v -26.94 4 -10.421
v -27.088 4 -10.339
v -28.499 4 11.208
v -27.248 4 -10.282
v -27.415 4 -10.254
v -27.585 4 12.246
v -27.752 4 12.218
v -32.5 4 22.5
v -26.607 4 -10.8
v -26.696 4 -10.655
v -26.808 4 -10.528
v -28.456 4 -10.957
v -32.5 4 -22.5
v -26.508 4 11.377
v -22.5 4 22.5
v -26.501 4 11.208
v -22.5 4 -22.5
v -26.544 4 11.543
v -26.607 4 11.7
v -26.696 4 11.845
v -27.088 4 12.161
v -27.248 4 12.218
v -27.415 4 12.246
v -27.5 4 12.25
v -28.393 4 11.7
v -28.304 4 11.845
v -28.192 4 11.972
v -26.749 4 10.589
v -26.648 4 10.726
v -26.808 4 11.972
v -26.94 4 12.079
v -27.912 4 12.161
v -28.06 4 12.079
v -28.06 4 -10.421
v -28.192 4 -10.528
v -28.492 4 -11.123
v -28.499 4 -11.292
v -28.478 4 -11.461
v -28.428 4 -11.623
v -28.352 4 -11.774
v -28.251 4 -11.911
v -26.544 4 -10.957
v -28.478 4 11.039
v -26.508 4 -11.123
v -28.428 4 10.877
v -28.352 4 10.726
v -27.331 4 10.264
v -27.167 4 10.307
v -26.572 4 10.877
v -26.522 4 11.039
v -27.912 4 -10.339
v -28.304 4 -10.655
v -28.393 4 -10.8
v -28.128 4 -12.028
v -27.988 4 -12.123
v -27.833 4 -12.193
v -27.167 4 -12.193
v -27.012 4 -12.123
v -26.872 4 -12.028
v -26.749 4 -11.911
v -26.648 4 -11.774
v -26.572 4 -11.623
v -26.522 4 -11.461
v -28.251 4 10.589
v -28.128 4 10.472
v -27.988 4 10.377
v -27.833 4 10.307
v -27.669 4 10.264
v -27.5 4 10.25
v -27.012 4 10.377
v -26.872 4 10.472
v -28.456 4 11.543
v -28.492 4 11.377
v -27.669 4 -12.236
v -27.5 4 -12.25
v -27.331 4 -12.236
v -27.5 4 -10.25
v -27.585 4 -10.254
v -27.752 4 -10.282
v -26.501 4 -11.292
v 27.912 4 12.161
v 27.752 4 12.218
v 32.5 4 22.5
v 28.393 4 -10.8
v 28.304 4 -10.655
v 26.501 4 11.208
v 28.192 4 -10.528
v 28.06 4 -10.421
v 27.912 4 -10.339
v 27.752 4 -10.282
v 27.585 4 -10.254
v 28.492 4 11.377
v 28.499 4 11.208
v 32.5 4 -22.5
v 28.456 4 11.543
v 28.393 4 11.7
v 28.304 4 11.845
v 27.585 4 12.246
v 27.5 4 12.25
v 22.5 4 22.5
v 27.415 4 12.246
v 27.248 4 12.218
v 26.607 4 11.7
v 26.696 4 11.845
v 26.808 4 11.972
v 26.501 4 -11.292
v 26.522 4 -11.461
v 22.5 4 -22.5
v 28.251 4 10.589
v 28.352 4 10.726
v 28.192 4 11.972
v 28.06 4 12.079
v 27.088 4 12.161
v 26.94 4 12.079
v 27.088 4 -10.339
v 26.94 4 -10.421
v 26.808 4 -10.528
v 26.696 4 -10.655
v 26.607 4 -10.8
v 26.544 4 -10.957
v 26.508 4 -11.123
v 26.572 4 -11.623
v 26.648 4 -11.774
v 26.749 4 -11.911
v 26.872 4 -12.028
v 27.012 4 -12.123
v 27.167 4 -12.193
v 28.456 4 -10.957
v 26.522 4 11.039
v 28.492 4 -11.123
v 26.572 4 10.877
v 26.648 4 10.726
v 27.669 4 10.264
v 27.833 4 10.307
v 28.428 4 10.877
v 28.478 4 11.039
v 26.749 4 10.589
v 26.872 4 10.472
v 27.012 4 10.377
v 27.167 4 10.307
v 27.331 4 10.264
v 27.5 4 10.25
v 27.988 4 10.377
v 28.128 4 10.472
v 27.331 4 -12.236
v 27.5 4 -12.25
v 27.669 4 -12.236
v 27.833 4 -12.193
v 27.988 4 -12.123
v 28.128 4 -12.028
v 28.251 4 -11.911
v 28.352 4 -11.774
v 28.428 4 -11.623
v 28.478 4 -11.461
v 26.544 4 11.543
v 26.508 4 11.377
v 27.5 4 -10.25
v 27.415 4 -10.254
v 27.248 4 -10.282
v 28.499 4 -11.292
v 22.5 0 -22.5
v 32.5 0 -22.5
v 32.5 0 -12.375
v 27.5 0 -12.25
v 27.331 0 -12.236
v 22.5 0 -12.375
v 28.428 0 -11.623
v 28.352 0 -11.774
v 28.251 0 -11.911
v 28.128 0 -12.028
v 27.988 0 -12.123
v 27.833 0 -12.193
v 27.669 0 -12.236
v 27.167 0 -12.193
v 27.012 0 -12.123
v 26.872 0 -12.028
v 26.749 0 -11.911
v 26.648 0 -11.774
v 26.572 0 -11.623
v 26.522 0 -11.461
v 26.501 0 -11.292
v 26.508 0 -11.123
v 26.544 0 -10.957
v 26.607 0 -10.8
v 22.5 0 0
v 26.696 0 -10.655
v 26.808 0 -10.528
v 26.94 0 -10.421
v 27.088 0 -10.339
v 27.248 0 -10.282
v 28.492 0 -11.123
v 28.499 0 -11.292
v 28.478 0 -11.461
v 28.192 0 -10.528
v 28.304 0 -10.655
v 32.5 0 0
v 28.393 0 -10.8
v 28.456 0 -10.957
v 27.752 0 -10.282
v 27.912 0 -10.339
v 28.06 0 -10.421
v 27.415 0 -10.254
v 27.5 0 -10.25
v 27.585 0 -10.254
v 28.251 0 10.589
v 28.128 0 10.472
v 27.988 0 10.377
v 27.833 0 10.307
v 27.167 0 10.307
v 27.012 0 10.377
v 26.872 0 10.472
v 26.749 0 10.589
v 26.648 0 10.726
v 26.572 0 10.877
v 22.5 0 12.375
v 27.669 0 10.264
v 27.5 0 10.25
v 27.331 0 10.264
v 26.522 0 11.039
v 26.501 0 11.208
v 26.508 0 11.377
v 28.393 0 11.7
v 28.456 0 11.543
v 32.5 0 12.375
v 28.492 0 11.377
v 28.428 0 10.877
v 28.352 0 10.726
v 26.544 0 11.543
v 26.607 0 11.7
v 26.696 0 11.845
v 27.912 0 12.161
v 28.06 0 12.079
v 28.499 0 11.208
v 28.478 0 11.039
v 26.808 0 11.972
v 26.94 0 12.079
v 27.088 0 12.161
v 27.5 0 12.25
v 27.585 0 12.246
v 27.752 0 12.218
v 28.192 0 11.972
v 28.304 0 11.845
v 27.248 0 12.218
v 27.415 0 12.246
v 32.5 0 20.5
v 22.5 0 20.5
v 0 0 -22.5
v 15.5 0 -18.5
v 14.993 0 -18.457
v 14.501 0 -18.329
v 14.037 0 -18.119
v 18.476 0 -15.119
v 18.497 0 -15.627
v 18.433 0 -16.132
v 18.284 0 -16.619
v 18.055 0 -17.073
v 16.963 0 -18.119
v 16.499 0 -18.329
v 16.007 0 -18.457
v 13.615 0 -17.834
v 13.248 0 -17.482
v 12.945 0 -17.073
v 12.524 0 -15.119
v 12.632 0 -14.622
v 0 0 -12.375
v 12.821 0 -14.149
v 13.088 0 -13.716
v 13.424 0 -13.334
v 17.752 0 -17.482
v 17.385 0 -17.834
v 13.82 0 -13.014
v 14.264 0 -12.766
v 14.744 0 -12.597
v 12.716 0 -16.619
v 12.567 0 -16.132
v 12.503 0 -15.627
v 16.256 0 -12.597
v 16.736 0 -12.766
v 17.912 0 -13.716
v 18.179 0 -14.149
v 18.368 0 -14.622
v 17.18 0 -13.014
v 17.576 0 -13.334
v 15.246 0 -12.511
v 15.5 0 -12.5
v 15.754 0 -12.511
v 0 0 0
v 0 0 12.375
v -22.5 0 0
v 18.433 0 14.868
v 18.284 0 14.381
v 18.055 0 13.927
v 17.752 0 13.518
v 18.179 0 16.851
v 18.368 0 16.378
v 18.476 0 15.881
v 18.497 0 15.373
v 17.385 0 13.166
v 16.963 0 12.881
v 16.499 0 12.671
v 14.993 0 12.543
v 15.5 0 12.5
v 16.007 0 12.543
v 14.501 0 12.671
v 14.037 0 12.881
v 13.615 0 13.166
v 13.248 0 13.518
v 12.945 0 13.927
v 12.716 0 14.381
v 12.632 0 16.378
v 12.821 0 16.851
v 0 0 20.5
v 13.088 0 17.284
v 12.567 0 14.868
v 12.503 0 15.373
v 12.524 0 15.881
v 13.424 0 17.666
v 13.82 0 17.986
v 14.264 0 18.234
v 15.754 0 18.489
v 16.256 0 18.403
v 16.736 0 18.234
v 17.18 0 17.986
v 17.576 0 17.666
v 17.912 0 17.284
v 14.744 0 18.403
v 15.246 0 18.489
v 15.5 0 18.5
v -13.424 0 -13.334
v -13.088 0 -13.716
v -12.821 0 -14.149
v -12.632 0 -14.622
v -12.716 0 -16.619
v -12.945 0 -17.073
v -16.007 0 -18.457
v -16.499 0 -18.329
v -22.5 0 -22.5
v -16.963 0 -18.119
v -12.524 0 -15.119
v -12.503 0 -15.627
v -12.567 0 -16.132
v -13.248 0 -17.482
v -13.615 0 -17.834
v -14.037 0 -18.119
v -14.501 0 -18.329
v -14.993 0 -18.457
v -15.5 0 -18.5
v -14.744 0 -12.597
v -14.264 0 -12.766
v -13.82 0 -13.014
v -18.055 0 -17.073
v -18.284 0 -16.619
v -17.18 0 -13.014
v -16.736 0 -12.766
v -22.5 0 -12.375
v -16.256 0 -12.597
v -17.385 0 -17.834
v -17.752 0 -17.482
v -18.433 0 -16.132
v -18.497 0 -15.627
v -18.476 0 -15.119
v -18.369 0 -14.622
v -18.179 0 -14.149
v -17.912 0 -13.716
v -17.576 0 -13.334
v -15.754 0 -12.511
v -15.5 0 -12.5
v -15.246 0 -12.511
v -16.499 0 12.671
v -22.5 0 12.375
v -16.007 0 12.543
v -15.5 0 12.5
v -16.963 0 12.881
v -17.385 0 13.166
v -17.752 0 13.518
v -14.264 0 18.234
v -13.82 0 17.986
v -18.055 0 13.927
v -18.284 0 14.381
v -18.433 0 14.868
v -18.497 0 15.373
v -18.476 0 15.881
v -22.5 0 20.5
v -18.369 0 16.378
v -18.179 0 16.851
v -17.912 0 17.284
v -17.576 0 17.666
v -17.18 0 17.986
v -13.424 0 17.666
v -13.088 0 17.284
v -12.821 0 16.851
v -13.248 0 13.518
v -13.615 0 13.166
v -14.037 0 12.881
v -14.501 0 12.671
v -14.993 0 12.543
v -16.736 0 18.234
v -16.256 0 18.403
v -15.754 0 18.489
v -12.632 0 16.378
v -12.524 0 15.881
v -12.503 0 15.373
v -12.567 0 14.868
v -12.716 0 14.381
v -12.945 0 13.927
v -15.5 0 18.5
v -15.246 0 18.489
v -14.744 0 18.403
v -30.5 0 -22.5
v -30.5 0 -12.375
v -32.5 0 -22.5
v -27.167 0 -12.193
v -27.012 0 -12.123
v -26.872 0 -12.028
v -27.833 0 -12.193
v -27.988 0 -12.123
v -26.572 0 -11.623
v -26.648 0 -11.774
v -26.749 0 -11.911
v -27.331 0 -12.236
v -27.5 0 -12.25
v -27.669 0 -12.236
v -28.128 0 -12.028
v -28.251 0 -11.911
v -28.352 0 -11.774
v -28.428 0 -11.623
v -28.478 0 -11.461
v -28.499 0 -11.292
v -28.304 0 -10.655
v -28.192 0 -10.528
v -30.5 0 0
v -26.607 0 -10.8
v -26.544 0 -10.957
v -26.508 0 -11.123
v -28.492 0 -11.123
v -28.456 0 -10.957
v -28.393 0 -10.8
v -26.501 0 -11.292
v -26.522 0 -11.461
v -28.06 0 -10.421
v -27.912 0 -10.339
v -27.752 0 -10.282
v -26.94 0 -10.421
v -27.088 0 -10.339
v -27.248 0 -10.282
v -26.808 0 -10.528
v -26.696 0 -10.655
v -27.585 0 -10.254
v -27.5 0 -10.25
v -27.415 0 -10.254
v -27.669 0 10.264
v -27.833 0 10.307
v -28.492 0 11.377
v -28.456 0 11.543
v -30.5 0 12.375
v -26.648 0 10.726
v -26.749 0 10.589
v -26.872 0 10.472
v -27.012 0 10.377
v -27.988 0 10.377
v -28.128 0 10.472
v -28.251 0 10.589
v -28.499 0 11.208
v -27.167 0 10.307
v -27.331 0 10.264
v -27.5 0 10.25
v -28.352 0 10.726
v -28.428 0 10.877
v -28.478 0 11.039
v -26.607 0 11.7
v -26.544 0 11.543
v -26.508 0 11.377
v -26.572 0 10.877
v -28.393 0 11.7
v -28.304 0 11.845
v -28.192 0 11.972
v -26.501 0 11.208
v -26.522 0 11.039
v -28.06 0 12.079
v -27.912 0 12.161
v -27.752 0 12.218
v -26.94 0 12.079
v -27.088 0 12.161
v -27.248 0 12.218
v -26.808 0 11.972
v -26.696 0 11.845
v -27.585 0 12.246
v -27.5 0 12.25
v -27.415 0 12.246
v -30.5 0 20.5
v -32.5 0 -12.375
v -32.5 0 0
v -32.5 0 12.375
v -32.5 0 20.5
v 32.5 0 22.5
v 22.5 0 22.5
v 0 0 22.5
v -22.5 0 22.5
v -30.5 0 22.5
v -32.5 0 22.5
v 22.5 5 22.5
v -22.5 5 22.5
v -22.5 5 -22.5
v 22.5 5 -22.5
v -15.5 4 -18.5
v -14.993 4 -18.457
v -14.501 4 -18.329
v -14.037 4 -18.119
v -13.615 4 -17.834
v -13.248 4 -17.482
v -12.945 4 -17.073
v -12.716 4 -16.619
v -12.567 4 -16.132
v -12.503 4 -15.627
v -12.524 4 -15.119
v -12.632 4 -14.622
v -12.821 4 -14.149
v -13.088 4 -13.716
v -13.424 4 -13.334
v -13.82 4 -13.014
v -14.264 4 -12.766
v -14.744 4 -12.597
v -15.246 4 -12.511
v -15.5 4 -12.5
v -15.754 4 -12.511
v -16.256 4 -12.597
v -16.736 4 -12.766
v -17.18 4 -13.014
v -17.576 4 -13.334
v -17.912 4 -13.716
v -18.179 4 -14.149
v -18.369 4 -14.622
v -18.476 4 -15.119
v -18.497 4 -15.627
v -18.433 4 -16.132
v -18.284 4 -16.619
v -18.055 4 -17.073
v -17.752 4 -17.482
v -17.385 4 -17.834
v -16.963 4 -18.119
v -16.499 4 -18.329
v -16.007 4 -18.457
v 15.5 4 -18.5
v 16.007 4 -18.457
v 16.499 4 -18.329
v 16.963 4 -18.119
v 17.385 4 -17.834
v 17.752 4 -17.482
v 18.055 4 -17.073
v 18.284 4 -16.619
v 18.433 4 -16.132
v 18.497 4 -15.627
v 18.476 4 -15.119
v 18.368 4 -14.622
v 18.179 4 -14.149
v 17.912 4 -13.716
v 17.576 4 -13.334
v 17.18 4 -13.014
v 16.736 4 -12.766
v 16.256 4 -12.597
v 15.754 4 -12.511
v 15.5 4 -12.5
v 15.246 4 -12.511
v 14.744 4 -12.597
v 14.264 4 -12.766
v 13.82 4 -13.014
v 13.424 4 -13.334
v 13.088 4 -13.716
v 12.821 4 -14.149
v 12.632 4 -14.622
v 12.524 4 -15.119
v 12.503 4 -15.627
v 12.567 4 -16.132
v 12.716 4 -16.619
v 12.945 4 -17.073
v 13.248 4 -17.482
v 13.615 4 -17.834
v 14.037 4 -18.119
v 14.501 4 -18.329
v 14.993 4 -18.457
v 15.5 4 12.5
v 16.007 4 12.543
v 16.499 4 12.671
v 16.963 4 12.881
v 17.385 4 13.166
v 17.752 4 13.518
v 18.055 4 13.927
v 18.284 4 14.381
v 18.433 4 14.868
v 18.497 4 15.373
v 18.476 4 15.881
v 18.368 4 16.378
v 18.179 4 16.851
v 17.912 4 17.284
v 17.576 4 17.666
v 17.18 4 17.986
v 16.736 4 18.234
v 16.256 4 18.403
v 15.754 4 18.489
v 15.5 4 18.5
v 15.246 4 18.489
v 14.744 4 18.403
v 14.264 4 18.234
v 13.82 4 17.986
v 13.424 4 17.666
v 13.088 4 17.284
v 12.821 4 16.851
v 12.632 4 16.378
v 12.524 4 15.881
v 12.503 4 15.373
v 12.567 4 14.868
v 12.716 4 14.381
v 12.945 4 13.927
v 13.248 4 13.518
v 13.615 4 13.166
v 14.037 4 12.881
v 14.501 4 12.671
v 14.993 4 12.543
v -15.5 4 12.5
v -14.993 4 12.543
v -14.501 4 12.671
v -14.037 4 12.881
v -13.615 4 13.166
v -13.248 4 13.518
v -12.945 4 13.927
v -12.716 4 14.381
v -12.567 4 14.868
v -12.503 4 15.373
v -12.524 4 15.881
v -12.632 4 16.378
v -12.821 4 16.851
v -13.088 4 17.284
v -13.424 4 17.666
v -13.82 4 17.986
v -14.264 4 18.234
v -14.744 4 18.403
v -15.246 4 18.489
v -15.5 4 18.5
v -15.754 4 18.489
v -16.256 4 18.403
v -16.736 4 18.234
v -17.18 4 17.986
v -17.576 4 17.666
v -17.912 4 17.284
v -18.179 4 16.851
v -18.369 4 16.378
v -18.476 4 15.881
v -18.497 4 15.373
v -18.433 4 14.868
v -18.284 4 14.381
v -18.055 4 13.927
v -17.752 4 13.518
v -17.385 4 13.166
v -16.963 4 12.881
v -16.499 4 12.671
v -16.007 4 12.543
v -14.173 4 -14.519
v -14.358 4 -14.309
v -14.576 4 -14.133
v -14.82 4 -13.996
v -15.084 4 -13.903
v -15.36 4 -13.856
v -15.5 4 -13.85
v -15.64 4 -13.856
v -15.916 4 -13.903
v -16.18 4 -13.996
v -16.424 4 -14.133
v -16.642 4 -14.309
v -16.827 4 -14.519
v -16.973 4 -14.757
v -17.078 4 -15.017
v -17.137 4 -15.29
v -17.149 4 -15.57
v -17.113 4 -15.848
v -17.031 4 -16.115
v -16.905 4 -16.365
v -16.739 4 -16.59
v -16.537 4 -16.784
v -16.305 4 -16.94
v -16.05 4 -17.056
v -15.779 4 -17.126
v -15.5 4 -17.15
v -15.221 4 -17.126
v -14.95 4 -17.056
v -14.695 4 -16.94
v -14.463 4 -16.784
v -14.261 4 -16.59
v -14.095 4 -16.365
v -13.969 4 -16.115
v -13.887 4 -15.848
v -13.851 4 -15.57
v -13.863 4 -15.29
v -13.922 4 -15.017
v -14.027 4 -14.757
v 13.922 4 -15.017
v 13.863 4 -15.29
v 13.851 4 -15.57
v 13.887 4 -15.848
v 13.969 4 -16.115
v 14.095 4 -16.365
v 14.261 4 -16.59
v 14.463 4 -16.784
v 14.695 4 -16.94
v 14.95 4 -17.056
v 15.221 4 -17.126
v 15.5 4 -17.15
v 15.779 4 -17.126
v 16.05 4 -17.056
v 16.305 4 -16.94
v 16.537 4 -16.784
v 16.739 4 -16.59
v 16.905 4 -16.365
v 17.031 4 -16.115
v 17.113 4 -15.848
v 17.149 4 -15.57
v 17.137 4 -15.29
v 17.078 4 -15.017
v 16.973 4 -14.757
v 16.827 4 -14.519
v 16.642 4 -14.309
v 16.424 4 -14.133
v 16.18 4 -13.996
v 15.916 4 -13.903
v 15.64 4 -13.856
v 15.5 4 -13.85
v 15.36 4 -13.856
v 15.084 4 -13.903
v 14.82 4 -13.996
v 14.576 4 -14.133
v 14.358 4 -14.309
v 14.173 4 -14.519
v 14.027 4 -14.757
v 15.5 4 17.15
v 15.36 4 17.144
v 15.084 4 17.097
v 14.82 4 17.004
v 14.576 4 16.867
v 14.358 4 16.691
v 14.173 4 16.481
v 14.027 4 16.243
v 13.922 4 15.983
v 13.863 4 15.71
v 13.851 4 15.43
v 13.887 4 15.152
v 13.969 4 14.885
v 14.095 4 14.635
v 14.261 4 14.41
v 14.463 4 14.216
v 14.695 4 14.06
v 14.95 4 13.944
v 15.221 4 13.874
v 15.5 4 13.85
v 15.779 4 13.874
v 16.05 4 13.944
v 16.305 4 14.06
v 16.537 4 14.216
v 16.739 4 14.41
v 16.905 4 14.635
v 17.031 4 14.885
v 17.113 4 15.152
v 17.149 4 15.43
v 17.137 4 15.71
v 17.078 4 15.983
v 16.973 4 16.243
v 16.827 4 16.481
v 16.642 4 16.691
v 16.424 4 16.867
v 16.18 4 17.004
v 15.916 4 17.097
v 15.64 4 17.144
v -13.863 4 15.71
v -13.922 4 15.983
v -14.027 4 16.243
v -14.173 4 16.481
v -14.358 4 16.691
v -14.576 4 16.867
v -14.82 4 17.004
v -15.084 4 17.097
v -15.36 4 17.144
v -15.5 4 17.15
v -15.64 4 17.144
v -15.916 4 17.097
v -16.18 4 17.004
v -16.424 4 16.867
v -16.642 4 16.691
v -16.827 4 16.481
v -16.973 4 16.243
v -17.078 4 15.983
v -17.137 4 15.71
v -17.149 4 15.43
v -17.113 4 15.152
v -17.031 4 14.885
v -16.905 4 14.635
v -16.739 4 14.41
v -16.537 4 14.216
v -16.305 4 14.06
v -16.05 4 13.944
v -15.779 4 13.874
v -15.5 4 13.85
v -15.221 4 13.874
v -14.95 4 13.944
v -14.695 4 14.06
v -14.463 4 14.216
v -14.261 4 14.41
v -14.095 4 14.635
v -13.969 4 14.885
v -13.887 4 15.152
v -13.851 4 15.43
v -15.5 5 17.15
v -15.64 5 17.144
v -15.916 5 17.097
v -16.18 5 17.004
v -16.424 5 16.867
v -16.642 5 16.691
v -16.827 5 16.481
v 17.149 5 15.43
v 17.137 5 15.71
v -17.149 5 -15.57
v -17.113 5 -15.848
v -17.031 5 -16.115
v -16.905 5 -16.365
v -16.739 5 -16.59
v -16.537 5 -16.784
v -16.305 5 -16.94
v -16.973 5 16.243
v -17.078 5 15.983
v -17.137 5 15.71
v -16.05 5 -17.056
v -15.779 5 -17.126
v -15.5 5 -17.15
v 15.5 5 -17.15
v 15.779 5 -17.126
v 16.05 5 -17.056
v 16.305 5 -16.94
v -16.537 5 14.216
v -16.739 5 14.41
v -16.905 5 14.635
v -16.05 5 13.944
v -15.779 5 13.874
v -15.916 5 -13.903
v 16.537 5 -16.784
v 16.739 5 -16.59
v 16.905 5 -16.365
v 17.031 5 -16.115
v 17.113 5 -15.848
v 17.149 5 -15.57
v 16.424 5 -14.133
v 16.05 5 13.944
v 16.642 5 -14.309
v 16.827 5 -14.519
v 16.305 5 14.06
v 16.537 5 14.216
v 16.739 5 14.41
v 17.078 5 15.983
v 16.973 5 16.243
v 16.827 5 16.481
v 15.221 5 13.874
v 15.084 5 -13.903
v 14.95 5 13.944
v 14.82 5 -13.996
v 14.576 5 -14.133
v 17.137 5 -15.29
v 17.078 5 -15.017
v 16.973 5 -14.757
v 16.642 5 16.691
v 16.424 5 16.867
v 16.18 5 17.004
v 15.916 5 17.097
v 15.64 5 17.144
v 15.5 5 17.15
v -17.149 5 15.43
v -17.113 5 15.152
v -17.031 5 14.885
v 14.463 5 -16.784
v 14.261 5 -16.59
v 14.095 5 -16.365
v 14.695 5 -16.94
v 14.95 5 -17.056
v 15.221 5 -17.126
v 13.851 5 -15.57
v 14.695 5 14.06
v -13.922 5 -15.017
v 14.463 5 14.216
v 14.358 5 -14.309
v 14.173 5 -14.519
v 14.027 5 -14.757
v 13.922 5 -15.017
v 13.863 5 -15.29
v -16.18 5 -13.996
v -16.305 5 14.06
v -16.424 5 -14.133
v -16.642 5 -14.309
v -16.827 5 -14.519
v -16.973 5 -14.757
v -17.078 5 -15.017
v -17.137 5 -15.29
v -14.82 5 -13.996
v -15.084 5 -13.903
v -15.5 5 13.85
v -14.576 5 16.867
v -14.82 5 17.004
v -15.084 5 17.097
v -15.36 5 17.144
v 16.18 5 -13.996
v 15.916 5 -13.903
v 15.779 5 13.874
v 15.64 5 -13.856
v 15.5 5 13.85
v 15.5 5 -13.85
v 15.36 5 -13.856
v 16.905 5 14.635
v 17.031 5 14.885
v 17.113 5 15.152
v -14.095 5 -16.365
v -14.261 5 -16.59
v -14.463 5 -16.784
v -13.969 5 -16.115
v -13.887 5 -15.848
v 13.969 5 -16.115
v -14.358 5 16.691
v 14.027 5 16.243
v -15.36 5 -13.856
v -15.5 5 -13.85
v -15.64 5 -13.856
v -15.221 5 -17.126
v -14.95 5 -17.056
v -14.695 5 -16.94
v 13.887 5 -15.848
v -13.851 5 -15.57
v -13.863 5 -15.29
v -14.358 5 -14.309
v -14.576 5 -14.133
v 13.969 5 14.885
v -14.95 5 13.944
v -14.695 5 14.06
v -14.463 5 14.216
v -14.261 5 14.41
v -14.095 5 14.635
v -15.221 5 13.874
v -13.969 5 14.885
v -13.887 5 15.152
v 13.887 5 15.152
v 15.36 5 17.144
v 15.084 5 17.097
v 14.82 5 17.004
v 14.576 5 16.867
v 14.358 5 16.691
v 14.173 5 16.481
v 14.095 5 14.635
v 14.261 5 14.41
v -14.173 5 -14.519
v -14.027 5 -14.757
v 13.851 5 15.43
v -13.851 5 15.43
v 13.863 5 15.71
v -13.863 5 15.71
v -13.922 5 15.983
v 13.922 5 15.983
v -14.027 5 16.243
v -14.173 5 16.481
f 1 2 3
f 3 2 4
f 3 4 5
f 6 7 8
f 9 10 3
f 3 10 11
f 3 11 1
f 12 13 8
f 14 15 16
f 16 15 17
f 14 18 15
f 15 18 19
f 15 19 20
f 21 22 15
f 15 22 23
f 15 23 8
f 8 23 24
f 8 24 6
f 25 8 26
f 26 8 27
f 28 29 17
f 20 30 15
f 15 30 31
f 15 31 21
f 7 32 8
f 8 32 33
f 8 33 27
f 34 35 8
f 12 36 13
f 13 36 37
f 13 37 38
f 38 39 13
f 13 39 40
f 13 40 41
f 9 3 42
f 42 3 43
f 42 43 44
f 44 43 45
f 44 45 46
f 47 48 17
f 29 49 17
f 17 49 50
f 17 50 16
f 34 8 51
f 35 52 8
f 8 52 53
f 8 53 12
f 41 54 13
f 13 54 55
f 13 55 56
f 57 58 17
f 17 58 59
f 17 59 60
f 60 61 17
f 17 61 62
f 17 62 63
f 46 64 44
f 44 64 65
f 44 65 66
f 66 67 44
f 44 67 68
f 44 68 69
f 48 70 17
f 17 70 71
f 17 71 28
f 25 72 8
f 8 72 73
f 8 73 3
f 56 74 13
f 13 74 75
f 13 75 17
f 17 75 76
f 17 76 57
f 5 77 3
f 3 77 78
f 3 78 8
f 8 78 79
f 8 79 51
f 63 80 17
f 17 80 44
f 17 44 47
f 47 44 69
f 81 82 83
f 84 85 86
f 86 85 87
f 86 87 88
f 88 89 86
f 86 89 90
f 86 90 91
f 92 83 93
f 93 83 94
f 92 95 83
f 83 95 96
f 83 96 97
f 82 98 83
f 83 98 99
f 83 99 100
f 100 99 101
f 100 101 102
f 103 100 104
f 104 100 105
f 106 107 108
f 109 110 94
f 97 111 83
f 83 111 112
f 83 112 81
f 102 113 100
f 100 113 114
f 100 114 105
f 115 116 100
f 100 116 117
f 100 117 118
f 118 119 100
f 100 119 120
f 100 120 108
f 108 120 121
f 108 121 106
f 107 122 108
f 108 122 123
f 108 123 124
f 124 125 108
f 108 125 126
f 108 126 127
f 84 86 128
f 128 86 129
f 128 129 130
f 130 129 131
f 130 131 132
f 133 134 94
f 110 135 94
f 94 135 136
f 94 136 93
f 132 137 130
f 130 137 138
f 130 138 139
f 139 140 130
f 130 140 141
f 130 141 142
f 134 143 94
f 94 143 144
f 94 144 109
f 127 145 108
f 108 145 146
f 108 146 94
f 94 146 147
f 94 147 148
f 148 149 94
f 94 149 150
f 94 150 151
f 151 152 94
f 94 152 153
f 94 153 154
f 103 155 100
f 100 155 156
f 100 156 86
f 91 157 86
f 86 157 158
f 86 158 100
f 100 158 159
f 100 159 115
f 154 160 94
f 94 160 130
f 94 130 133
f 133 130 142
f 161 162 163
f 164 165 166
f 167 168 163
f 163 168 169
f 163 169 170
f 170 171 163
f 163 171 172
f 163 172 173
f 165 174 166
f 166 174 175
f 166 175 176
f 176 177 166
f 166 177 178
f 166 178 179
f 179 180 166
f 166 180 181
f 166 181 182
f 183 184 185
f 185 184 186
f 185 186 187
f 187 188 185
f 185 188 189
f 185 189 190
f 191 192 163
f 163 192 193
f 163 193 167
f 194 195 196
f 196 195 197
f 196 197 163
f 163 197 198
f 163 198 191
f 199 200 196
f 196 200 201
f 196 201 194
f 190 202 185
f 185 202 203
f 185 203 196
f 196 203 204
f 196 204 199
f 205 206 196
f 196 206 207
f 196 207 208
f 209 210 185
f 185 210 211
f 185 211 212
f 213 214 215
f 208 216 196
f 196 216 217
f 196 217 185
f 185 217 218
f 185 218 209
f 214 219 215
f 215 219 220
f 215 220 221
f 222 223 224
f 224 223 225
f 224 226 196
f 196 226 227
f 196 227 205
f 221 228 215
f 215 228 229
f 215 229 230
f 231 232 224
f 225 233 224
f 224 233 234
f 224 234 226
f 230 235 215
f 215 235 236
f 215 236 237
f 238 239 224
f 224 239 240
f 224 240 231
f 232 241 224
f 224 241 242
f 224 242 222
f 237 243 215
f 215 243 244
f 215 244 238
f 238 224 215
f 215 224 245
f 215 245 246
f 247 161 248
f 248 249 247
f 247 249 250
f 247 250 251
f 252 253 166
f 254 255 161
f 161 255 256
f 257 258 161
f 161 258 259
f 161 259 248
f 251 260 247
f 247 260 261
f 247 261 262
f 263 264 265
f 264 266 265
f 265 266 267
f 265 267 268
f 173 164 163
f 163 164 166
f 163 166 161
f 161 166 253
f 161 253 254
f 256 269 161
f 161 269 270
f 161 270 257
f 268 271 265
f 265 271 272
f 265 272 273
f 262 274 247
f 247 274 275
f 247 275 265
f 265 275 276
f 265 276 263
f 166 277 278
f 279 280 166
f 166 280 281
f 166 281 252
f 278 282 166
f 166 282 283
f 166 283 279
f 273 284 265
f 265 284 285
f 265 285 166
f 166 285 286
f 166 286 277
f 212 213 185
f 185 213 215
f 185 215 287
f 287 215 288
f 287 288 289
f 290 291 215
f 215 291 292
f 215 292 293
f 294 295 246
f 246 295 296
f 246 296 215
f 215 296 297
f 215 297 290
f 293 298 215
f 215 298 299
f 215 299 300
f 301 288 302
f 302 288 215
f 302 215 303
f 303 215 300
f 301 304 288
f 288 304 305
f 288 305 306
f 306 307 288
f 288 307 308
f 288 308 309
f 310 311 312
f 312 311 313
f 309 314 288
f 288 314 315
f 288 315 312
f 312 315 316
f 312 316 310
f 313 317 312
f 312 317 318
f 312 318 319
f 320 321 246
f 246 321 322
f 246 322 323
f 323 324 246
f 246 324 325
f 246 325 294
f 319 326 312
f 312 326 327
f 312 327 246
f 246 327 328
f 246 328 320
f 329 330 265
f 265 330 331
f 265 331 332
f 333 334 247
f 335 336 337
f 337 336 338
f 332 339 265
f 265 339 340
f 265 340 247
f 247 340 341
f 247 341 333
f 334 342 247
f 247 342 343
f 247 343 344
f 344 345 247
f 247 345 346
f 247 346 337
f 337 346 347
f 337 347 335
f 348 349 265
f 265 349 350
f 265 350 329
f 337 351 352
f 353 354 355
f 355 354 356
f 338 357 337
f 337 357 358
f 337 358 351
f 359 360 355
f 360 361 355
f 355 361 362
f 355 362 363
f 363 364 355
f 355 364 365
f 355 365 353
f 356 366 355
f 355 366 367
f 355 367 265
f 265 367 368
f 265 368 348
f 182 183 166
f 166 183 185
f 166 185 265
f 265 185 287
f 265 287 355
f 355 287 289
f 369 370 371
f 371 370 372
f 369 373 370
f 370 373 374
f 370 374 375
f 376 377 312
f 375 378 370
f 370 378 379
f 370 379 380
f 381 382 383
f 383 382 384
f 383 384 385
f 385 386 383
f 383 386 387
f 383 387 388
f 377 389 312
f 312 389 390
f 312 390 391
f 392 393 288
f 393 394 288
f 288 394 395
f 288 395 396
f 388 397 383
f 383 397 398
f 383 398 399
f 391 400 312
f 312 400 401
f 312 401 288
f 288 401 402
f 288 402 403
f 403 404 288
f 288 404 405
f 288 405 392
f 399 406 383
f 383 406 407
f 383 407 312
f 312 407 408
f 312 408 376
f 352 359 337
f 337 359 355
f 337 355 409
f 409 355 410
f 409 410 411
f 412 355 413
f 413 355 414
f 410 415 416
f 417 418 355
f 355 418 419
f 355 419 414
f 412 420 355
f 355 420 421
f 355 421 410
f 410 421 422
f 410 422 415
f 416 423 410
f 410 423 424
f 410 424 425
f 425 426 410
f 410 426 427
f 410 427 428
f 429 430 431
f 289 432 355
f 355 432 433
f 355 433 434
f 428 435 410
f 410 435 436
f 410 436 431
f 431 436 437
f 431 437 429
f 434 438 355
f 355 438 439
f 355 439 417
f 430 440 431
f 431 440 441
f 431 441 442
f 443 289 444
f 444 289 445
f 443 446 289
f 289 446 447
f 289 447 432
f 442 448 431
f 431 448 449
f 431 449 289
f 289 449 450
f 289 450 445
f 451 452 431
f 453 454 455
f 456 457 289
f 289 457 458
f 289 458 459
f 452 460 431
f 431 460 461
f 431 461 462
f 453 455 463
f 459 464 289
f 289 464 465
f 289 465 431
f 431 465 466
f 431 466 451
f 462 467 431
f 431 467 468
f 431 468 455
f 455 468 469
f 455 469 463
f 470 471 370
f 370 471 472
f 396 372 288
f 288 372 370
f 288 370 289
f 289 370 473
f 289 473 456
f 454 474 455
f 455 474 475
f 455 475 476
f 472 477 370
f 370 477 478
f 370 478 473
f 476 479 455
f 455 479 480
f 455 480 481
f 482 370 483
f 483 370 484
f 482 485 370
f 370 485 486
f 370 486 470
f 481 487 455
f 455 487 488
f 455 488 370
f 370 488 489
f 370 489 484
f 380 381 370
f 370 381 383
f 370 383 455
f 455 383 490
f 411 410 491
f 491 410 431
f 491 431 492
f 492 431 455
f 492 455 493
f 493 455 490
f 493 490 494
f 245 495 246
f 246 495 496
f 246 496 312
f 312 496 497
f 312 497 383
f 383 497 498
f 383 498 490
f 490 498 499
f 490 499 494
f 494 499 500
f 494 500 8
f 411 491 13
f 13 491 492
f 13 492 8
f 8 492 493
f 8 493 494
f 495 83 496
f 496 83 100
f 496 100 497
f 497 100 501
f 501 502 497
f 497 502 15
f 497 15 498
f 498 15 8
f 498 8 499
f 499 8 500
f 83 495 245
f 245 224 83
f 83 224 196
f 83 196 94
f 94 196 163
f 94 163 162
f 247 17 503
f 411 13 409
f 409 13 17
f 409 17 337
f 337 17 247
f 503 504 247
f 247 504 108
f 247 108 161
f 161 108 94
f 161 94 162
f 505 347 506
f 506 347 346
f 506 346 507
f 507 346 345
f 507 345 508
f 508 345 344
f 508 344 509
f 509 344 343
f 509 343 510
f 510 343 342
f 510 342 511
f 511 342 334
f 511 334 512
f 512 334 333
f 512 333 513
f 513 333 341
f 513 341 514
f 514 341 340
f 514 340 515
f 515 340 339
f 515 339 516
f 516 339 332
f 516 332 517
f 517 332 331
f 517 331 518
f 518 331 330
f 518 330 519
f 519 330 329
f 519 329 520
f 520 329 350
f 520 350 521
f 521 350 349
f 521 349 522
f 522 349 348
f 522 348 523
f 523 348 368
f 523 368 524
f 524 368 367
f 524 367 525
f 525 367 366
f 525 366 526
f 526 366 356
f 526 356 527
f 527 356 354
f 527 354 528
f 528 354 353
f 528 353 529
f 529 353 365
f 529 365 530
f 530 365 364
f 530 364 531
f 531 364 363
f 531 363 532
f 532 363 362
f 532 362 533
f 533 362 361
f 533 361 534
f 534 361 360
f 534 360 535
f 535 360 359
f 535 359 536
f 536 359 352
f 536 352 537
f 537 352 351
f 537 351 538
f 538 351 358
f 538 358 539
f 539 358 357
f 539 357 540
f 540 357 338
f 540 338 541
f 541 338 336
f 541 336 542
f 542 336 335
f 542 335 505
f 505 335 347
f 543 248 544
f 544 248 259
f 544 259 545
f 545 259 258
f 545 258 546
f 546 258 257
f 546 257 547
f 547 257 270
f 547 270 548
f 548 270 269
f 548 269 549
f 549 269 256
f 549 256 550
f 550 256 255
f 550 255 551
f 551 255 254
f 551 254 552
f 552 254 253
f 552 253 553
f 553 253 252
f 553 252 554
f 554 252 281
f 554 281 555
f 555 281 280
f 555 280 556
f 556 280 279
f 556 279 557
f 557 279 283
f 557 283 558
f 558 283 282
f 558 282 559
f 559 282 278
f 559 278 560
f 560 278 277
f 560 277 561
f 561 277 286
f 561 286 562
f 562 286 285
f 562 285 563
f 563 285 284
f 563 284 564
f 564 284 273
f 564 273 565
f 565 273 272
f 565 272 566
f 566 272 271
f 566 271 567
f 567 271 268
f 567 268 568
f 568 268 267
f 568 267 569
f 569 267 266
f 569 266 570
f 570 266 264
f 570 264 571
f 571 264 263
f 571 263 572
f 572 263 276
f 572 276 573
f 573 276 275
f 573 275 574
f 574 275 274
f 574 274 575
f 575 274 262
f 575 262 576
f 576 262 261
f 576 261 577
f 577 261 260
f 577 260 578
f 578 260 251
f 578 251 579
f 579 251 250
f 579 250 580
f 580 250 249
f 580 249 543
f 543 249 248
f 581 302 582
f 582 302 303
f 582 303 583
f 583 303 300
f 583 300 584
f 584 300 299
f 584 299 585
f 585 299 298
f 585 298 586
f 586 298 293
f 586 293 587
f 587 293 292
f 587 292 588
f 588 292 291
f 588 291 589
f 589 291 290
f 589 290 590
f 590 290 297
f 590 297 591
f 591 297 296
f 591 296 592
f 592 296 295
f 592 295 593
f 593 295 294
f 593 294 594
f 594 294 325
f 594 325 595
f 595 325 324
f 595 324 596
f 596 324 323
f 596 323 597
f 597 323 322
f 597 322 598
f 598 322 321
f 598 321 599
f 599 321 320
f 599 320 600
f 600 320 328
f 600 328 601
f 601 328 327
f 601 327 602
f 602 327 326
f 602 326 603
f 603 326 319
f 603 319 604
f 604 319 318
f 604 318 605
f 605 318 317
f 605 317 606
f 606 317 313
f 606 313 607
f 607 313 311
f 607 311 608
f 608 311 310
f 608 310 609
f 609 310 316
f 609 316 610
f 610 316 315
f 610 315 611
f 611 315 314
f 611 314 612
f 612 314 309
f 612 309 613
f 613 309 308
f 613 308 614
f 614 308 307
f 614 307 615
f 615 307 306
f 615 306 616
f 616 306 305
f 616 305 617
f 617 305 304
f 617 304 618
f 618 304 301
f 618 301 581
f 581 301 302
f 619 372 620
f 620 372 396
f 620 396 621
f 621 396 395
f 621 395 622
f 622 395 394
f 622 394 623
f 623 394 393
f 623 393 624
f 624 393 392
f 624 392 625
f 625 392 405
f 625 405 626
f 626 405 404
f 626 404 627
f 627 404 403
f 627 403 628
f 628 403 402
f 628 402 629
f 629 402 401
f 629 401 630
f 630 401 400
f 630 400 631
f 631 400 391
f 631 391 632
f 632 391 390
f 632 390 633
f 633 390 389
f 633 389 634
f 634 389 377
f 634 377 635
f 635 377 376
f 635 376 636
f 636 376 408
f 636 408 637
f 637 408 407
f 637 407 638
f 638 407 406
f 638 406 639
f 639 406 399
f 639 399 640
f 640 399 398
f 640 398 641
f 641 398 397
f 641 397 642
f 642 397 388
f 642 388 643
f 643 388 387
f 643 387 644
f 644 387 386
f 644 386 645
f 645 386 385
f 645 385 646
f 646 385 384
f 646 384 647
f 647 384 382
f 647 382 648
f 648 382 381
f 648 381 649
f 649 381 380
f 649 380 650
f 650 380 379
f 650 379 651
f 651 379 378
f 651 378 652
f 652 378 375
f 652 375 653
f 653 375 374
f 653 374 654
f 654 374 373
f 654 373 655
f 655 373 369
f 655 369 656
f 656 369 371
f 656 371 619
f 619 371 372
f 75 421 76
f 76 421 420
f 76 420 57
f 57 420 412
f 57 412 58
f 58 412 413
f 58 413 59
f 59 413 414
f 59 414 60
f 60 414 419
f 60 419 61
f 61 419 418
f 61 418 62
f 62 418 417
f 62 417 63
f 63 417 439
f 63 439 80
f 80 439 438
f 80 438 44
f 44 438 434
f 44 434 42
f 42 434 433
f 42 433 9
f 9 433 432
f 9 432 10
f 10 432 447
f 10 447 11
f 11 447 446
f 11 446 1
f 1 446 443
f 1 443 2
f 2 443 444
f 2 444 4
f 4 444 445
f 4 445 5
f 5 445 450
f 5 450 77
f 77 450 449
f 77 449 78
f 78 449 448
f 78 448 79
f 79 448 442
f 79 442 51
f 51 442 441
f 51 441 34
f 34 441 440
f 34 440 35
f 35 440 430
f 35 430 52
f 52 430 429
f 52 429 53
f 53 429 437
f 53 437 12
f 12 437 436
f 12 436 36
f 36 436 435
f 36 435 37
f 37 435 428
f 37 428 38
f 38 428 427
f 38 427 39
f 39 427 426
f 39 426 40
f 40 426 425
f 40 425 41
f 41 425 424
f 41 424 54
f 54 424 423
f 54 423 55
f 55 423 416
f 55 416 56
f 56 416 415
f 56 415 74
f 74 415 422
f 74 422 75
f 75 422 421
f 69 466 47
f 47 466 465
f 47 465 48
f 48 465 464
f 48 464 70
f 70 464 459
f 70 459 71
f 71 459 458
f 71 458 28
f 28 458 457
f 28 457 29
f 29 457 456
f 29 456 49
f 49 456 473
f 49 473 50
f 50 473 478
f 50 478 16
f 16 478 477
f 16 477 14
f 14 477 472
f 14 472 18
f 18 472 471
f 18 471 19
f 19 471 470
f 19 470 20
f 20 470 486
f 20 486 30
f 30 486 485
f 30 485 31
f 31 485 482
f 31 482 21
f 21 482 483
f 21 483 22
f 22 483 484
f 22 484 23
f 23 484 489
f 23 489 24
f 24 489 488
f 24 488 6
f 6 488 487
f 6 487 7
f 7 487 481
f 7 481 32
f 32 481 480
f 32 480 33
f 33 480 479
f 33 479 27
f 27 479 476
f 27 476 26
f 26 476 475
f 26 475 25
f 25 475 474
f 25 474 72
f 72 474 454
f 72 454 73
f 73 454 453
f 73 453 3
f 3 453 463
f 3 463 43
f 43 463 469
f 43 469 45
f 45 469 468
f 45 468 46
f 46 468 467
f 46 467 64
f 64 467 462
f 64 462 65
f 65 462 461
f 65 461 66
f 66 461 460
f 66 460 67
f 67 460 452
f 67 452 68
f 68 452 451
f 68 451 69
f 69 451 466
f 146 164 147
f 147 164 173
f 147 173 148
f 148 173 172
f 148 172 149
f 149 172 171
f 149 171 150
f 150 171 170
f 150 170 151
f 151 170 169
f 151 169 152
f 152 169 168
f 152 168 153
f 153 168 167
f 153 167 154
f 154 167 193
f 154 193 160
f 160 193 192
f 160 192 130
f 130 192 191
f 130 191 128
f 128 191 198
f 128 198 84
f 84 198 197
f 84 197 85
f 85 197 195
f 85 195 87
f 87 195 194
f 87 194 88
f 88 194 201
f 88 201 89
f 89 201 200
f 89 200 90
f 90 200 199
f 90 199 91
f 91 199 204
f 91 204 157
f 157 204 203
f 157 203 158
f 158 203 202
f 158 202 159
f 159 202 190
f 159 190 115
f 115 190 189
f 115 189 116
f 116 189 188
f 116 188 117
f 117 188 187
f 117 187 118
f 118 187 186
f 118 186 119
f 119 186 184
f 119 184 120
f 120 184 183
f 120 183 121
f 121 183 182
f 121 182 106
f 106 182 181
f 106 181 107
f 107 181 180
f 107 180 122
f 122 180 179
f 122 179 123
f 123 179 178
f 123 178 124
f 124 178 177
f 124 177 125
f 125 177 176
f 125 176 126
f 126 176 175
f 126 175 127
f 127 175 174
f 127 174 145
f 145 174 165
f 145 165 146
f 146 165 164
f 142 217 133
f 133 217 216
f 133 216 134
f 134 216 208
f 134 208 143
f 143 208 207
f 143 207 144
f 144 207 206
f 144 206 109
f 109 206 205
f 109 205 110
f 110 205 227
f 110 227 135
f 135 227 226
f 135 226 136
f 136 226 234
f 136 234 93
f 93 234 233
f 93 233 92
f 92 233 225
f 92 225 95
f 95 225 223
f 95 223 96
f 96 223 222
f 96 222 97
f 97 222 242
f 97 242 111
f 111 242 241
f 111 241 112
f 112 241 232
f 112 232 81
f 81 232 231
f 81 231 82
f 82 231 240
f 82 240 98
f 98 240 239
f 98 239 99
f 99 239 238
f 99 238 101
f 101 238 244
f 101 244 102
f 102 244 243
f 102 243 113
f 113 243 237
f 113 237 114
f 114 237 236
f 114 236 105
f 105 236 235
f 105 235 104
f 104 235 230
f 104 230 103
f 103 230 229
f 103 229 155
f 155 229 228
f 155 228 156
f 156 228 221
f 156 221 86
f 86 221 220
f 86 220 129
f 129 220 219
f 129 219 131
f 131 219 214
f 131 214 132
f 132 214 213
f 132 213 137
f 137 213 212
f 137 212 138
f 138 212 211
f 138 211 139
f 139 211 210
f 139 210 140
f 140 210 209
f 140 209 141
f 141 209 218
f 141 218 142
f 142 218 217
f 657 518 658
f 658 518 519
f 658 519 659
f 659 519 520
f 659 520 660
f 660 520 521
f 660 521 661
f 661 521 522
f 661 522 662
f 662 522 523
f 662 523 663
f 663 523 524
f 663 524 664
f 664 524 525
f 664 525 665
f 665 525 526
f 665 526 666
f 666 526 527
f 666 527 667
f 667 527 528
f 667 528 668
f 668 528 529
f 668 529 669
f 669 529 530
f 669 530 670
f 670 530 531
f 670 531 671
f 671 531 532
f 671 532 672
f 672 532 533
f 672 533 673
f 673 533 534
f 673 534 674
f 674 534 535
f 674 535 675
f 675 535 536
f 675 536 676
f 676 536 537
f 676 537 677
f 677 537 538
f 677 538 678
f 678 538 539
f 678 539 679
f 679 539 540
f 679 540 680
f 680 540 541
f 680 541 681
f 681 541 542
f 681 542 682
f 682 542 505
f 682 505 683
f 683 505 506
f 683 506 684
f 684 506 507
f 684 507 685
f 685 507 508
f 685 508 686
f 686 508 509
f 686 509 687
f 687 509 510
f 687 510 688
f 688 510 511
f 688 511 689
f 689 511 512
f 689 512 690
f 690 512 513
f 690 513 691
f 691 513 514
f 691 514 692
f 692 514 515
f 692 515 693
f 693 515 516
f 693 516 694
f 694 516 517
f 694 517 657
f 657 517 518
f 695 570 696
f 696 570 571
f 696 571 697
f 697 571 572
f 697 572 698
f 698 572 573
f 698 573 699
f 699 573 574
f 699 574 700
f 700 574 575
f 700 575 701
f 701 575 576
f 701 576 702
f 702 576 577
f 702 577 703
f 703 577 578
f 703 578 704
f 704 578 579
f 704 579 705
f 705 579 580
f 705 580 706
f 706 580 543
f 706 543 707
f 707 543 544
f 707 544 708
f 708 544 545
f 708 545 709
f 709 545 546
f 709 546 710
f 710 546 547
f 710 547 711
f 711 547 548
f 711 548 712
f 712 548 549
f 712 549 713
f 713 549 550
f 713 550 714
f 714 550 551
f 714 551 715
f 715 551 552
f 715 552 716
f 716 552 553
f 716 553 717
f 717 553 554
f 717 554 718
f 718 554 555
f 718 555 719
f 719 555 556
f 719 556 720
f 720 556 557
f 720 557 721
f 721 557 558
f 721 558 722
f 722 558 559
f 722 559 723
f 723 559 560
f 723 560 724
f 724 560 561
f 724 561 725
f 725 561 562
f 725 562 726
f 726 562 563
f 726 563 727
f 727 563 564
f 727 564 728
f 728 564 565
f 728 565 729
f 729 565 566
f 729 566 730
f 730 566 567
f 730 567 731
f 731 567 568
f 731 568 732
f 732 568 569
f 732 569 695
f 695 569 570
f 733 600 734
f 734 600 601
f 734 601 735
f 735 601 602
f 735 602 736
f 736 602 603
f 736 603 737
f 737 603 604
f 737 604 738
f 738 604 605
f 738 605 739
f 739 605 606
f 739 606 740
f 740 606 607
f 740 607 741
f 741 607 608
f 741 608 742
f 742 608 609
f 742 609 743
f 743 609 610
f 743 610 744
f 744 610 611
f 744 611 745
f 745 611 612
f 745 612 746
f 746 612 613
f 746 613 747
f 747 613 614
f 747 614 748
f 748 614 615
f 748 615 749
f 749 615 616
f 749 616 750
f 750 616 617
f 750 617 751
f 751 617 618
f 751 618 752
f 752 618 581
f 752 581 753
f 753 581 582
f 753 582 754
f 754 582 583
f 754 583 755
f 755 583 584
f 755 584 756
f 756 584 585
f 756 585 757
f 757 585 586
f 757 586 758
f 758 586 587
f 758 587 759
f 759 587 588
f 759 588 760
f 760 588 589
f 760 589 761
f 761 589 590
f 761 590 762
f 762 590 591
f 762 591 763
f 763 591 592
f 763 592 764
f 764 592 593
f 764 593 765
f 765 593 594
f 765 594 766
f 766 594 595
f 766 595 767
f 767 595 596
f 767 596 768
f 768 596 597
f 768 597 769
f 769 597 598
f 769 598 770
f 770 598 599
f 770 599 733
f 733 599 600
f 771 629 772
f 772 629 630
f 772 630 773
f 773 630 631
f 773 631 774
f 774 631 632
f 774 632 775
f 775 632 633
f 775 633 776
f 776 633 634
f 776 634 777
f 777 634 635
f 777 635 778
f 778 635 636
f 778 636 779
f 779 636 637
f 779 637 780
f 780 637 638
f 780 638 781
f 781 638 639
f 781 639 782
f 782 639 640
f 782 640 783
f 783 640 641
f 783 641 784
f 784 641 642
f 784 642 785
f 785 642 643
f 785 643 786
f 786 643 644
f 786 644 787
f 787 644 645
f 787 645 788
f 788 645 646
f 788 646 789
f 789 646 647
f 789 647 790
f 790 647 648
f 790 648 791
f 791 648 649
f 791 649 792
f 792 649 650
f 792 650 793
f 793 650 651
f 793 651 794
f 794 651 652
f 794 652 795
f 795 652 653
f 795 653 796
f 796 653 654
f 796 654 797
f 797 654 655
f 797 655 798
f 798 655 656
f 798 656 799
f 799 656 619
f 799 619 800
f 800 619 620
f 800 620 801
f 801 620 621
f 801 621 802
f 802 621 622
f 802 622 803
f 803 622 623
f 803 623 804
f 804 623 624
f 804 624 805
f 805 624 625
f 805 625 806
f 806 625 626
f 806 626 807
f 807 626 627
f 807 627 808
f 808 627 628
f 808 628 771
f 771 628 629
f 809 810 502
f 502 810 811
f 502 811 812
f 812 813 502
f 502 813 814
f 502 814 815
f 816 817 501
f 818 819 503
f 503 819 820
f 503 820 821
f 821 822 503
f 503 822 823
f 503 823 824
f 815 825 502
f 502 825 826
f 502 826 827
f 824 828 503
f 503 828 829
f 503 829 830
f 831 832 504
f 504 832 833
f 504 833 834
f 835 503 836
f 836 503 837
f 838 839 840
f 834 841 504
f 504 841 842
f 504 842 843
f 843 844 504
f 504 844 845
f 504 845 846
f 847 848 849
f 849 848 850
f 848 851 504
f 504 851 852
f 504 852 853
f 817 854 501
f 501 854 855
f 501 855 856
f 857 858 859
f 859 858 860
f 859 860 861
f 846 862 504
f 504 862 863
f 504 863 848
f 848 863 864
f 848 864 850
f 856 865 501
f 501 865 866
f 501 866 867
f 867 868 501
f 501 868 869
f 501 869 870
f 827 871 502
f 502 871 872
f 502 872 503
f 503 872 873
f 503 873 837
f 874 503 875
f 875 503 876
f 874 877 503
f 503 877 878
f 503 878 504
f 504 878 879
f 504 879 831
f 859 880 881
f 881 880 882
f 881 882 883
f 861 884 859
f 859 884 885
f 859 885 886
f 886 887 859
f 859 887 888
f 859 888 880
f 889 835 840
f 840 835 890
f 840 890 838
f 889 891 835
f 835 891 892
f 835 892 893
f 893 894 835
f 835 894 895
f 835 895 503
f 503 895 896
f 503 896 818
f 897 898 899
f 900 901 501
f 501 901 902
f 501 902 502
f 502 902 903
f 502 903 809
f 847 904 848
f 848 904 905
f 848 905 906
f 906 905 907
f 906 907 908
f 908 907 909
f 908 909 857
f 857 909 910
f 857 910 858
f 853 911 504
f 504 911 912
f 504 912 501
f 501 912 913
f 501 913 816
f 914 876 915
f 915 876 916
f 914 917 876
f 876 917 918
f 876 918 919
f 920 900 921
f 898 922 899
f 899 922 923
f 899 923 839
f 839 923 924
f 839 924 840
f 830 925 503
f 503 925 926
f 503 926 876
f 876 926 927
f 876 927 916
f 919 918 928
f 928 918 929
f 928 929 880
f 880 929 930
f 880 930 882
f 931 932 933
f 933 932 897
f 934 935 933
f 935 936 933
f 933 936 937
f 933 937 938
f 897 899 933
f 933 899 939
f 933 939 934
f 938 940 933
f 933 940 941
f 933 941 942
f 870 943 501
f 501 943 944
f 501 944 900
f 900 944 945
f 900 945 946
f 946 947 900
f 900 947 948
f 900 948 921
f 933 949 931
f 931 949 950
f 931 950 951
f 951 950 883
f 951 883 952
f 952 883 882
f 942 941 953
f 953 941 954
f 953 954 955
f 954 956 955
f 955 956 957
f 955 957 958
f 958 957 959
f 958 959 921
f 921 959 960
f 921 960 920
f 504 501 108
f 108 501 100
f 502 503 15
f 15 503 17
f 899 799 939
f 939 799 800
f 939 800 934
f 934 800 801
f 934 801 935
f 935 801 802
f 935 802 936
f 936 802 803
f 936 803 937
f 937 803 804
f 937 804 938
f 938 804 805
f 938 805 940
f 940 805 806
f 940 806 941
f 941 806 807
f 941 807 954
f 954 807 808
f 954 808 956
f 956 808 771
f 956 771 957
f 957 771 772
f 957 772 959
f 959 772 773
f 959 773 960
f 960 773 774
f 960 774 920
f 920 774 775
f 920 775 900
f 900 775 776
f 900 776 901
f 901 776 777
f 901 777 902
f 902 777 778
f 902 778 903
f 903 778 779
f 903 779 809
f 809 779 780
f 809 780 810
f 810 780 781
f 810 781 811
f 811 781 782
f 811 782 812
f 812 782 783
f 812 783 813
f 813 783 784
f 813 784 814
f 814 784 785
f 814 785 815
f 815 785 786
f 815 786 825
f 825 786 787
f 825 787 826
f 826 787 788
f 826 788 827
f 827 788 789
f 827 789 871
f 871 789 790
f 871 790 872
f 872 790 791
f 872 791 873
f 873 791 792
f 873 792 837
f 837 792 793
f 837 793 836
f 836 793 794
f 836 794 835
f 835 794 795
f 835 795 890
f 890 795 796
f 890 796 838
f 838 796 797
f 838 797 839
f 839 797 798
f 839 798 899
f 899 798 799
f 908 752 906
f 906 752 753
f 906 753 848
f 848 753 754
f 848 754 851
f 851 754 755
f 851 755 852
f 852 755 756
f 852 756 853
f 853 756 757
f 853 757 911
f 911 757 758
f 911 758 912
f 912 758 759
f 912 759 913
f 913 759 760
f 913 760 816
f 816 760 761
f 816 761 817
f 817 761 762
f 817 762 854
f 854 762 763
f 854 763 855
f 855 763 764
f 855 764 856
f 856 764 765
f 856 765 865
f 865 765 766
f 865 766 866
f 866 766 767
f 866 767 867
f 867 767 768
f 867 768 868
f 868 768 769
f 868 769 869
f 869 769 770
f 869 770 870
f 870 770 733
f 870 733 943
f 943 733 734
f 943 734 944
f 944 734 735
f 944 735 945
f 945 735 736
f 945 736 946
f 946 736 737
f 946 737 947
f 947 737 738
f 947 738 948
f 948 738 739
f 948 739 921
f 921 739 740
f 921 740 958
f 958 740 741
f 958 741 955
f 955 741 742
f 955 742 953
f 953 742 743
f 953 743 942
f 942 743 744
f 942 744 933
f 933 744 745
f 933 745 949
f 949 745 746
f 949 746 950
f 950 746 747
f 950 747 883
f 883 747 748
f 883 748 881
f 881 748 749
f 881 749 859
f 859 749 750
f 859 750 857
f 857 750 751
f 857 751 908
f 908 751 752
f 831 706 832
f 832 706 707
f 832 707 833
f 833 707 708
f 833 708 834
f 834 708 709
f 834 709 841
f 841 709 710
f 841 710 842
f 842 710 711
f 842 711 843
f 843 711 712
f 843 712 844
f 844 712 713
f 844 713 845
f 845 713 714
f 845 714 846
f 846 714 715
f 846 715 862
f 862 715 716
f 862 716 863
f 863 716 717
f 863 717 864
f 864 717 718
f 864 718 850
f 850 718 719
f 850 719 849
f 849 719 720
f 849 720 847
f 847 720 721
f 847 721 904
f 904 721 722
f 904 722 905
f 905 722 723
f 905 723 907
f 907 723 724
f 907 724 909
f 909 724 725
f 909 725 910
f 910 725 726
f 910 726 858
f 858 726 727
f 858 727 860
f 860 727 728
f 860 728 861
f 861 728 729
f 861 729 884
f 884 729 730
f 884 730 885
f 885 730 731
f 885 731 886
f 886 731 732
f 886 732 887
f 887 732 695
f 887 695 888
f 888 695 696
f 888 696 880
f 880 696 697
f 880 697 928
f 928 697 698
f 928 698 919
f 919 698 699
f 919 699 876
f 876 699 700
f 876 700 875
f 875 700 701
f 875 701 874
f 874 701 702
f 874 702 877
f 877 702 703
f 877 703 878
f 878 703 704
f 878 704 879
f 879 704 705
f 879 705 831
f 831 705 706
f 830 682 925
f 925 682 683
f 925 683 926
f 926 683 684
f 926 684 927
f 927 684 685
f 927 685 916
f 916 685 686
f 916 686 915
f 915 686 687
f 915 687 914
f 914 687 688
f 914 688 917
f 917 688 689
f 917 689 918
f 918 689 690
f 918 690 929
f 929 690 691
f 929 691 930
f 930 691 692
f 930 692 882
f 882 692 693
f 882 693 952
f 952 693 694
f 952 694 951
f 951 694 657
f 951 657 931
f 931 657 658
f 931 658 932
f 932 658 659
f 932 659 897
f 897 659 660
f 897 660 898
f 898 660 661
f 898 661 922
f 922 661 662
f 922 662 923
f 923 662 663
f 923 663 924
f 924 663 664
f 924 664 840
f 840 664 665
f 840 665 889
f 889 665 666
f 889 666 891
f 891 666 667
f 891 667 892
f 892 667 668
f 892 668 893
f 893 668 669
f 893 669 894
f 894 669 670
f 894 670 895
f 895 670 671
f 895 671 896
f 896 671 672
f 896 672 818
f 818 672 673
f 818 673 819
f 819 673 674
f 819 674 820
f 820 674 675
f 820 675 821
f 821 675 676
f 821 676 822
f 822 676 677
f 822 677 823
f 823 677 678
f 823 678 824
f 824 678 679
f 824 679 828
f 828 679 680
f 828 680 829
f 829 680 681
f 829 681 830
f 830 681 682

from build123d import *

# Parameters (mm, degrees)
SKETCH1_R           = 3
SKETCH1_R_2         = 1
BOSS_EXTRUDE1_DEPTH = 4
SKETCH2_W           = 45
SKETCH2_H           = 45
SKETCH2_R           = 1.65
BOSS_EXTRUDE2_DEPTH = 1


with BuildPart() as part:
    # Sketch1 → Boss-Extrude1 (new body)
    with BuildSketch(Plane(origin=(0, 0, 0), x_dir=(1, 0, 0), z_dir=(0, 1, 0))):
        Polygon((-22.5, -22.5), (-32.5, -22.5), (-32.5, 22.5), (-22.5, 22.5), (22.5, 22.5), (32.5, 22.5), (32.5, -22.5), (22.5, -22.5), align=None)
        with Locations((-15.5, 15.5)):
            Circle(SKETCH1_R, mode=Mode.SUBTRACT)
        with Locations((15.5, 15.5)):
            Circle(SKETCH1_R, mode=Mode.SUBTRACT)
        with Locations((15.5, -15.5)):
            Circle(SKETCH1_R, mode=Mode.SUBTRACT)
        with Locations((-15.5, -15.5)):
            Circle(SKETCH1_R, mode=Mode.SUBTRACT)
        with Locations((-27.5, 11.25)):
            Circle(SKETCH1_R_2, mode=Mode.SUBTRACT)
        with Locations((-27.5, -11.25)):
            Circle(SKETCH1_R_2, mode=Mode.SUBTRACT)
        with Locations((27.5, 11.25)):
            Circle(SKETCH1_R_2, mode=Mode.SUBTRACT)
        with Locations((27.5, -11.25)):
            Circle(SKETCH1_R_2, mode=Mode.SUBTRACT)
    extrude(amount=BOSS_EXTRUDE1_DEPTH)

    # Sketch2 → Boss-Extrude2 (add)
    with BuildSketch(Plane(origin=(0, 4, 0), x_dir=(1, 0, 0), z_dir=(0, 1, 0))):
        Rectangle(SKETCH2_W, SKETCH2_H)
        with Locations((-15.5, -15.5)):
            Circle(SKETCH2_R, mode=Mode.SUBTRACT)
        with Locations((15.5, -15.5)):
            Circle(SKETCH2_R, mode=Mode.SUBTRACT)
        with Locations((15.5, 15.5)):
            Circle(SKETCH2_R, mode=Mode.SUBTRACT)
        with Locations((-15.5, 15.5)):
            Circle(SKETCH2_R, mode=Mode.SUBTRACT)
    extrude(amount=BOSS_EXTRUDE2_DEPTH)


solid = part.part
